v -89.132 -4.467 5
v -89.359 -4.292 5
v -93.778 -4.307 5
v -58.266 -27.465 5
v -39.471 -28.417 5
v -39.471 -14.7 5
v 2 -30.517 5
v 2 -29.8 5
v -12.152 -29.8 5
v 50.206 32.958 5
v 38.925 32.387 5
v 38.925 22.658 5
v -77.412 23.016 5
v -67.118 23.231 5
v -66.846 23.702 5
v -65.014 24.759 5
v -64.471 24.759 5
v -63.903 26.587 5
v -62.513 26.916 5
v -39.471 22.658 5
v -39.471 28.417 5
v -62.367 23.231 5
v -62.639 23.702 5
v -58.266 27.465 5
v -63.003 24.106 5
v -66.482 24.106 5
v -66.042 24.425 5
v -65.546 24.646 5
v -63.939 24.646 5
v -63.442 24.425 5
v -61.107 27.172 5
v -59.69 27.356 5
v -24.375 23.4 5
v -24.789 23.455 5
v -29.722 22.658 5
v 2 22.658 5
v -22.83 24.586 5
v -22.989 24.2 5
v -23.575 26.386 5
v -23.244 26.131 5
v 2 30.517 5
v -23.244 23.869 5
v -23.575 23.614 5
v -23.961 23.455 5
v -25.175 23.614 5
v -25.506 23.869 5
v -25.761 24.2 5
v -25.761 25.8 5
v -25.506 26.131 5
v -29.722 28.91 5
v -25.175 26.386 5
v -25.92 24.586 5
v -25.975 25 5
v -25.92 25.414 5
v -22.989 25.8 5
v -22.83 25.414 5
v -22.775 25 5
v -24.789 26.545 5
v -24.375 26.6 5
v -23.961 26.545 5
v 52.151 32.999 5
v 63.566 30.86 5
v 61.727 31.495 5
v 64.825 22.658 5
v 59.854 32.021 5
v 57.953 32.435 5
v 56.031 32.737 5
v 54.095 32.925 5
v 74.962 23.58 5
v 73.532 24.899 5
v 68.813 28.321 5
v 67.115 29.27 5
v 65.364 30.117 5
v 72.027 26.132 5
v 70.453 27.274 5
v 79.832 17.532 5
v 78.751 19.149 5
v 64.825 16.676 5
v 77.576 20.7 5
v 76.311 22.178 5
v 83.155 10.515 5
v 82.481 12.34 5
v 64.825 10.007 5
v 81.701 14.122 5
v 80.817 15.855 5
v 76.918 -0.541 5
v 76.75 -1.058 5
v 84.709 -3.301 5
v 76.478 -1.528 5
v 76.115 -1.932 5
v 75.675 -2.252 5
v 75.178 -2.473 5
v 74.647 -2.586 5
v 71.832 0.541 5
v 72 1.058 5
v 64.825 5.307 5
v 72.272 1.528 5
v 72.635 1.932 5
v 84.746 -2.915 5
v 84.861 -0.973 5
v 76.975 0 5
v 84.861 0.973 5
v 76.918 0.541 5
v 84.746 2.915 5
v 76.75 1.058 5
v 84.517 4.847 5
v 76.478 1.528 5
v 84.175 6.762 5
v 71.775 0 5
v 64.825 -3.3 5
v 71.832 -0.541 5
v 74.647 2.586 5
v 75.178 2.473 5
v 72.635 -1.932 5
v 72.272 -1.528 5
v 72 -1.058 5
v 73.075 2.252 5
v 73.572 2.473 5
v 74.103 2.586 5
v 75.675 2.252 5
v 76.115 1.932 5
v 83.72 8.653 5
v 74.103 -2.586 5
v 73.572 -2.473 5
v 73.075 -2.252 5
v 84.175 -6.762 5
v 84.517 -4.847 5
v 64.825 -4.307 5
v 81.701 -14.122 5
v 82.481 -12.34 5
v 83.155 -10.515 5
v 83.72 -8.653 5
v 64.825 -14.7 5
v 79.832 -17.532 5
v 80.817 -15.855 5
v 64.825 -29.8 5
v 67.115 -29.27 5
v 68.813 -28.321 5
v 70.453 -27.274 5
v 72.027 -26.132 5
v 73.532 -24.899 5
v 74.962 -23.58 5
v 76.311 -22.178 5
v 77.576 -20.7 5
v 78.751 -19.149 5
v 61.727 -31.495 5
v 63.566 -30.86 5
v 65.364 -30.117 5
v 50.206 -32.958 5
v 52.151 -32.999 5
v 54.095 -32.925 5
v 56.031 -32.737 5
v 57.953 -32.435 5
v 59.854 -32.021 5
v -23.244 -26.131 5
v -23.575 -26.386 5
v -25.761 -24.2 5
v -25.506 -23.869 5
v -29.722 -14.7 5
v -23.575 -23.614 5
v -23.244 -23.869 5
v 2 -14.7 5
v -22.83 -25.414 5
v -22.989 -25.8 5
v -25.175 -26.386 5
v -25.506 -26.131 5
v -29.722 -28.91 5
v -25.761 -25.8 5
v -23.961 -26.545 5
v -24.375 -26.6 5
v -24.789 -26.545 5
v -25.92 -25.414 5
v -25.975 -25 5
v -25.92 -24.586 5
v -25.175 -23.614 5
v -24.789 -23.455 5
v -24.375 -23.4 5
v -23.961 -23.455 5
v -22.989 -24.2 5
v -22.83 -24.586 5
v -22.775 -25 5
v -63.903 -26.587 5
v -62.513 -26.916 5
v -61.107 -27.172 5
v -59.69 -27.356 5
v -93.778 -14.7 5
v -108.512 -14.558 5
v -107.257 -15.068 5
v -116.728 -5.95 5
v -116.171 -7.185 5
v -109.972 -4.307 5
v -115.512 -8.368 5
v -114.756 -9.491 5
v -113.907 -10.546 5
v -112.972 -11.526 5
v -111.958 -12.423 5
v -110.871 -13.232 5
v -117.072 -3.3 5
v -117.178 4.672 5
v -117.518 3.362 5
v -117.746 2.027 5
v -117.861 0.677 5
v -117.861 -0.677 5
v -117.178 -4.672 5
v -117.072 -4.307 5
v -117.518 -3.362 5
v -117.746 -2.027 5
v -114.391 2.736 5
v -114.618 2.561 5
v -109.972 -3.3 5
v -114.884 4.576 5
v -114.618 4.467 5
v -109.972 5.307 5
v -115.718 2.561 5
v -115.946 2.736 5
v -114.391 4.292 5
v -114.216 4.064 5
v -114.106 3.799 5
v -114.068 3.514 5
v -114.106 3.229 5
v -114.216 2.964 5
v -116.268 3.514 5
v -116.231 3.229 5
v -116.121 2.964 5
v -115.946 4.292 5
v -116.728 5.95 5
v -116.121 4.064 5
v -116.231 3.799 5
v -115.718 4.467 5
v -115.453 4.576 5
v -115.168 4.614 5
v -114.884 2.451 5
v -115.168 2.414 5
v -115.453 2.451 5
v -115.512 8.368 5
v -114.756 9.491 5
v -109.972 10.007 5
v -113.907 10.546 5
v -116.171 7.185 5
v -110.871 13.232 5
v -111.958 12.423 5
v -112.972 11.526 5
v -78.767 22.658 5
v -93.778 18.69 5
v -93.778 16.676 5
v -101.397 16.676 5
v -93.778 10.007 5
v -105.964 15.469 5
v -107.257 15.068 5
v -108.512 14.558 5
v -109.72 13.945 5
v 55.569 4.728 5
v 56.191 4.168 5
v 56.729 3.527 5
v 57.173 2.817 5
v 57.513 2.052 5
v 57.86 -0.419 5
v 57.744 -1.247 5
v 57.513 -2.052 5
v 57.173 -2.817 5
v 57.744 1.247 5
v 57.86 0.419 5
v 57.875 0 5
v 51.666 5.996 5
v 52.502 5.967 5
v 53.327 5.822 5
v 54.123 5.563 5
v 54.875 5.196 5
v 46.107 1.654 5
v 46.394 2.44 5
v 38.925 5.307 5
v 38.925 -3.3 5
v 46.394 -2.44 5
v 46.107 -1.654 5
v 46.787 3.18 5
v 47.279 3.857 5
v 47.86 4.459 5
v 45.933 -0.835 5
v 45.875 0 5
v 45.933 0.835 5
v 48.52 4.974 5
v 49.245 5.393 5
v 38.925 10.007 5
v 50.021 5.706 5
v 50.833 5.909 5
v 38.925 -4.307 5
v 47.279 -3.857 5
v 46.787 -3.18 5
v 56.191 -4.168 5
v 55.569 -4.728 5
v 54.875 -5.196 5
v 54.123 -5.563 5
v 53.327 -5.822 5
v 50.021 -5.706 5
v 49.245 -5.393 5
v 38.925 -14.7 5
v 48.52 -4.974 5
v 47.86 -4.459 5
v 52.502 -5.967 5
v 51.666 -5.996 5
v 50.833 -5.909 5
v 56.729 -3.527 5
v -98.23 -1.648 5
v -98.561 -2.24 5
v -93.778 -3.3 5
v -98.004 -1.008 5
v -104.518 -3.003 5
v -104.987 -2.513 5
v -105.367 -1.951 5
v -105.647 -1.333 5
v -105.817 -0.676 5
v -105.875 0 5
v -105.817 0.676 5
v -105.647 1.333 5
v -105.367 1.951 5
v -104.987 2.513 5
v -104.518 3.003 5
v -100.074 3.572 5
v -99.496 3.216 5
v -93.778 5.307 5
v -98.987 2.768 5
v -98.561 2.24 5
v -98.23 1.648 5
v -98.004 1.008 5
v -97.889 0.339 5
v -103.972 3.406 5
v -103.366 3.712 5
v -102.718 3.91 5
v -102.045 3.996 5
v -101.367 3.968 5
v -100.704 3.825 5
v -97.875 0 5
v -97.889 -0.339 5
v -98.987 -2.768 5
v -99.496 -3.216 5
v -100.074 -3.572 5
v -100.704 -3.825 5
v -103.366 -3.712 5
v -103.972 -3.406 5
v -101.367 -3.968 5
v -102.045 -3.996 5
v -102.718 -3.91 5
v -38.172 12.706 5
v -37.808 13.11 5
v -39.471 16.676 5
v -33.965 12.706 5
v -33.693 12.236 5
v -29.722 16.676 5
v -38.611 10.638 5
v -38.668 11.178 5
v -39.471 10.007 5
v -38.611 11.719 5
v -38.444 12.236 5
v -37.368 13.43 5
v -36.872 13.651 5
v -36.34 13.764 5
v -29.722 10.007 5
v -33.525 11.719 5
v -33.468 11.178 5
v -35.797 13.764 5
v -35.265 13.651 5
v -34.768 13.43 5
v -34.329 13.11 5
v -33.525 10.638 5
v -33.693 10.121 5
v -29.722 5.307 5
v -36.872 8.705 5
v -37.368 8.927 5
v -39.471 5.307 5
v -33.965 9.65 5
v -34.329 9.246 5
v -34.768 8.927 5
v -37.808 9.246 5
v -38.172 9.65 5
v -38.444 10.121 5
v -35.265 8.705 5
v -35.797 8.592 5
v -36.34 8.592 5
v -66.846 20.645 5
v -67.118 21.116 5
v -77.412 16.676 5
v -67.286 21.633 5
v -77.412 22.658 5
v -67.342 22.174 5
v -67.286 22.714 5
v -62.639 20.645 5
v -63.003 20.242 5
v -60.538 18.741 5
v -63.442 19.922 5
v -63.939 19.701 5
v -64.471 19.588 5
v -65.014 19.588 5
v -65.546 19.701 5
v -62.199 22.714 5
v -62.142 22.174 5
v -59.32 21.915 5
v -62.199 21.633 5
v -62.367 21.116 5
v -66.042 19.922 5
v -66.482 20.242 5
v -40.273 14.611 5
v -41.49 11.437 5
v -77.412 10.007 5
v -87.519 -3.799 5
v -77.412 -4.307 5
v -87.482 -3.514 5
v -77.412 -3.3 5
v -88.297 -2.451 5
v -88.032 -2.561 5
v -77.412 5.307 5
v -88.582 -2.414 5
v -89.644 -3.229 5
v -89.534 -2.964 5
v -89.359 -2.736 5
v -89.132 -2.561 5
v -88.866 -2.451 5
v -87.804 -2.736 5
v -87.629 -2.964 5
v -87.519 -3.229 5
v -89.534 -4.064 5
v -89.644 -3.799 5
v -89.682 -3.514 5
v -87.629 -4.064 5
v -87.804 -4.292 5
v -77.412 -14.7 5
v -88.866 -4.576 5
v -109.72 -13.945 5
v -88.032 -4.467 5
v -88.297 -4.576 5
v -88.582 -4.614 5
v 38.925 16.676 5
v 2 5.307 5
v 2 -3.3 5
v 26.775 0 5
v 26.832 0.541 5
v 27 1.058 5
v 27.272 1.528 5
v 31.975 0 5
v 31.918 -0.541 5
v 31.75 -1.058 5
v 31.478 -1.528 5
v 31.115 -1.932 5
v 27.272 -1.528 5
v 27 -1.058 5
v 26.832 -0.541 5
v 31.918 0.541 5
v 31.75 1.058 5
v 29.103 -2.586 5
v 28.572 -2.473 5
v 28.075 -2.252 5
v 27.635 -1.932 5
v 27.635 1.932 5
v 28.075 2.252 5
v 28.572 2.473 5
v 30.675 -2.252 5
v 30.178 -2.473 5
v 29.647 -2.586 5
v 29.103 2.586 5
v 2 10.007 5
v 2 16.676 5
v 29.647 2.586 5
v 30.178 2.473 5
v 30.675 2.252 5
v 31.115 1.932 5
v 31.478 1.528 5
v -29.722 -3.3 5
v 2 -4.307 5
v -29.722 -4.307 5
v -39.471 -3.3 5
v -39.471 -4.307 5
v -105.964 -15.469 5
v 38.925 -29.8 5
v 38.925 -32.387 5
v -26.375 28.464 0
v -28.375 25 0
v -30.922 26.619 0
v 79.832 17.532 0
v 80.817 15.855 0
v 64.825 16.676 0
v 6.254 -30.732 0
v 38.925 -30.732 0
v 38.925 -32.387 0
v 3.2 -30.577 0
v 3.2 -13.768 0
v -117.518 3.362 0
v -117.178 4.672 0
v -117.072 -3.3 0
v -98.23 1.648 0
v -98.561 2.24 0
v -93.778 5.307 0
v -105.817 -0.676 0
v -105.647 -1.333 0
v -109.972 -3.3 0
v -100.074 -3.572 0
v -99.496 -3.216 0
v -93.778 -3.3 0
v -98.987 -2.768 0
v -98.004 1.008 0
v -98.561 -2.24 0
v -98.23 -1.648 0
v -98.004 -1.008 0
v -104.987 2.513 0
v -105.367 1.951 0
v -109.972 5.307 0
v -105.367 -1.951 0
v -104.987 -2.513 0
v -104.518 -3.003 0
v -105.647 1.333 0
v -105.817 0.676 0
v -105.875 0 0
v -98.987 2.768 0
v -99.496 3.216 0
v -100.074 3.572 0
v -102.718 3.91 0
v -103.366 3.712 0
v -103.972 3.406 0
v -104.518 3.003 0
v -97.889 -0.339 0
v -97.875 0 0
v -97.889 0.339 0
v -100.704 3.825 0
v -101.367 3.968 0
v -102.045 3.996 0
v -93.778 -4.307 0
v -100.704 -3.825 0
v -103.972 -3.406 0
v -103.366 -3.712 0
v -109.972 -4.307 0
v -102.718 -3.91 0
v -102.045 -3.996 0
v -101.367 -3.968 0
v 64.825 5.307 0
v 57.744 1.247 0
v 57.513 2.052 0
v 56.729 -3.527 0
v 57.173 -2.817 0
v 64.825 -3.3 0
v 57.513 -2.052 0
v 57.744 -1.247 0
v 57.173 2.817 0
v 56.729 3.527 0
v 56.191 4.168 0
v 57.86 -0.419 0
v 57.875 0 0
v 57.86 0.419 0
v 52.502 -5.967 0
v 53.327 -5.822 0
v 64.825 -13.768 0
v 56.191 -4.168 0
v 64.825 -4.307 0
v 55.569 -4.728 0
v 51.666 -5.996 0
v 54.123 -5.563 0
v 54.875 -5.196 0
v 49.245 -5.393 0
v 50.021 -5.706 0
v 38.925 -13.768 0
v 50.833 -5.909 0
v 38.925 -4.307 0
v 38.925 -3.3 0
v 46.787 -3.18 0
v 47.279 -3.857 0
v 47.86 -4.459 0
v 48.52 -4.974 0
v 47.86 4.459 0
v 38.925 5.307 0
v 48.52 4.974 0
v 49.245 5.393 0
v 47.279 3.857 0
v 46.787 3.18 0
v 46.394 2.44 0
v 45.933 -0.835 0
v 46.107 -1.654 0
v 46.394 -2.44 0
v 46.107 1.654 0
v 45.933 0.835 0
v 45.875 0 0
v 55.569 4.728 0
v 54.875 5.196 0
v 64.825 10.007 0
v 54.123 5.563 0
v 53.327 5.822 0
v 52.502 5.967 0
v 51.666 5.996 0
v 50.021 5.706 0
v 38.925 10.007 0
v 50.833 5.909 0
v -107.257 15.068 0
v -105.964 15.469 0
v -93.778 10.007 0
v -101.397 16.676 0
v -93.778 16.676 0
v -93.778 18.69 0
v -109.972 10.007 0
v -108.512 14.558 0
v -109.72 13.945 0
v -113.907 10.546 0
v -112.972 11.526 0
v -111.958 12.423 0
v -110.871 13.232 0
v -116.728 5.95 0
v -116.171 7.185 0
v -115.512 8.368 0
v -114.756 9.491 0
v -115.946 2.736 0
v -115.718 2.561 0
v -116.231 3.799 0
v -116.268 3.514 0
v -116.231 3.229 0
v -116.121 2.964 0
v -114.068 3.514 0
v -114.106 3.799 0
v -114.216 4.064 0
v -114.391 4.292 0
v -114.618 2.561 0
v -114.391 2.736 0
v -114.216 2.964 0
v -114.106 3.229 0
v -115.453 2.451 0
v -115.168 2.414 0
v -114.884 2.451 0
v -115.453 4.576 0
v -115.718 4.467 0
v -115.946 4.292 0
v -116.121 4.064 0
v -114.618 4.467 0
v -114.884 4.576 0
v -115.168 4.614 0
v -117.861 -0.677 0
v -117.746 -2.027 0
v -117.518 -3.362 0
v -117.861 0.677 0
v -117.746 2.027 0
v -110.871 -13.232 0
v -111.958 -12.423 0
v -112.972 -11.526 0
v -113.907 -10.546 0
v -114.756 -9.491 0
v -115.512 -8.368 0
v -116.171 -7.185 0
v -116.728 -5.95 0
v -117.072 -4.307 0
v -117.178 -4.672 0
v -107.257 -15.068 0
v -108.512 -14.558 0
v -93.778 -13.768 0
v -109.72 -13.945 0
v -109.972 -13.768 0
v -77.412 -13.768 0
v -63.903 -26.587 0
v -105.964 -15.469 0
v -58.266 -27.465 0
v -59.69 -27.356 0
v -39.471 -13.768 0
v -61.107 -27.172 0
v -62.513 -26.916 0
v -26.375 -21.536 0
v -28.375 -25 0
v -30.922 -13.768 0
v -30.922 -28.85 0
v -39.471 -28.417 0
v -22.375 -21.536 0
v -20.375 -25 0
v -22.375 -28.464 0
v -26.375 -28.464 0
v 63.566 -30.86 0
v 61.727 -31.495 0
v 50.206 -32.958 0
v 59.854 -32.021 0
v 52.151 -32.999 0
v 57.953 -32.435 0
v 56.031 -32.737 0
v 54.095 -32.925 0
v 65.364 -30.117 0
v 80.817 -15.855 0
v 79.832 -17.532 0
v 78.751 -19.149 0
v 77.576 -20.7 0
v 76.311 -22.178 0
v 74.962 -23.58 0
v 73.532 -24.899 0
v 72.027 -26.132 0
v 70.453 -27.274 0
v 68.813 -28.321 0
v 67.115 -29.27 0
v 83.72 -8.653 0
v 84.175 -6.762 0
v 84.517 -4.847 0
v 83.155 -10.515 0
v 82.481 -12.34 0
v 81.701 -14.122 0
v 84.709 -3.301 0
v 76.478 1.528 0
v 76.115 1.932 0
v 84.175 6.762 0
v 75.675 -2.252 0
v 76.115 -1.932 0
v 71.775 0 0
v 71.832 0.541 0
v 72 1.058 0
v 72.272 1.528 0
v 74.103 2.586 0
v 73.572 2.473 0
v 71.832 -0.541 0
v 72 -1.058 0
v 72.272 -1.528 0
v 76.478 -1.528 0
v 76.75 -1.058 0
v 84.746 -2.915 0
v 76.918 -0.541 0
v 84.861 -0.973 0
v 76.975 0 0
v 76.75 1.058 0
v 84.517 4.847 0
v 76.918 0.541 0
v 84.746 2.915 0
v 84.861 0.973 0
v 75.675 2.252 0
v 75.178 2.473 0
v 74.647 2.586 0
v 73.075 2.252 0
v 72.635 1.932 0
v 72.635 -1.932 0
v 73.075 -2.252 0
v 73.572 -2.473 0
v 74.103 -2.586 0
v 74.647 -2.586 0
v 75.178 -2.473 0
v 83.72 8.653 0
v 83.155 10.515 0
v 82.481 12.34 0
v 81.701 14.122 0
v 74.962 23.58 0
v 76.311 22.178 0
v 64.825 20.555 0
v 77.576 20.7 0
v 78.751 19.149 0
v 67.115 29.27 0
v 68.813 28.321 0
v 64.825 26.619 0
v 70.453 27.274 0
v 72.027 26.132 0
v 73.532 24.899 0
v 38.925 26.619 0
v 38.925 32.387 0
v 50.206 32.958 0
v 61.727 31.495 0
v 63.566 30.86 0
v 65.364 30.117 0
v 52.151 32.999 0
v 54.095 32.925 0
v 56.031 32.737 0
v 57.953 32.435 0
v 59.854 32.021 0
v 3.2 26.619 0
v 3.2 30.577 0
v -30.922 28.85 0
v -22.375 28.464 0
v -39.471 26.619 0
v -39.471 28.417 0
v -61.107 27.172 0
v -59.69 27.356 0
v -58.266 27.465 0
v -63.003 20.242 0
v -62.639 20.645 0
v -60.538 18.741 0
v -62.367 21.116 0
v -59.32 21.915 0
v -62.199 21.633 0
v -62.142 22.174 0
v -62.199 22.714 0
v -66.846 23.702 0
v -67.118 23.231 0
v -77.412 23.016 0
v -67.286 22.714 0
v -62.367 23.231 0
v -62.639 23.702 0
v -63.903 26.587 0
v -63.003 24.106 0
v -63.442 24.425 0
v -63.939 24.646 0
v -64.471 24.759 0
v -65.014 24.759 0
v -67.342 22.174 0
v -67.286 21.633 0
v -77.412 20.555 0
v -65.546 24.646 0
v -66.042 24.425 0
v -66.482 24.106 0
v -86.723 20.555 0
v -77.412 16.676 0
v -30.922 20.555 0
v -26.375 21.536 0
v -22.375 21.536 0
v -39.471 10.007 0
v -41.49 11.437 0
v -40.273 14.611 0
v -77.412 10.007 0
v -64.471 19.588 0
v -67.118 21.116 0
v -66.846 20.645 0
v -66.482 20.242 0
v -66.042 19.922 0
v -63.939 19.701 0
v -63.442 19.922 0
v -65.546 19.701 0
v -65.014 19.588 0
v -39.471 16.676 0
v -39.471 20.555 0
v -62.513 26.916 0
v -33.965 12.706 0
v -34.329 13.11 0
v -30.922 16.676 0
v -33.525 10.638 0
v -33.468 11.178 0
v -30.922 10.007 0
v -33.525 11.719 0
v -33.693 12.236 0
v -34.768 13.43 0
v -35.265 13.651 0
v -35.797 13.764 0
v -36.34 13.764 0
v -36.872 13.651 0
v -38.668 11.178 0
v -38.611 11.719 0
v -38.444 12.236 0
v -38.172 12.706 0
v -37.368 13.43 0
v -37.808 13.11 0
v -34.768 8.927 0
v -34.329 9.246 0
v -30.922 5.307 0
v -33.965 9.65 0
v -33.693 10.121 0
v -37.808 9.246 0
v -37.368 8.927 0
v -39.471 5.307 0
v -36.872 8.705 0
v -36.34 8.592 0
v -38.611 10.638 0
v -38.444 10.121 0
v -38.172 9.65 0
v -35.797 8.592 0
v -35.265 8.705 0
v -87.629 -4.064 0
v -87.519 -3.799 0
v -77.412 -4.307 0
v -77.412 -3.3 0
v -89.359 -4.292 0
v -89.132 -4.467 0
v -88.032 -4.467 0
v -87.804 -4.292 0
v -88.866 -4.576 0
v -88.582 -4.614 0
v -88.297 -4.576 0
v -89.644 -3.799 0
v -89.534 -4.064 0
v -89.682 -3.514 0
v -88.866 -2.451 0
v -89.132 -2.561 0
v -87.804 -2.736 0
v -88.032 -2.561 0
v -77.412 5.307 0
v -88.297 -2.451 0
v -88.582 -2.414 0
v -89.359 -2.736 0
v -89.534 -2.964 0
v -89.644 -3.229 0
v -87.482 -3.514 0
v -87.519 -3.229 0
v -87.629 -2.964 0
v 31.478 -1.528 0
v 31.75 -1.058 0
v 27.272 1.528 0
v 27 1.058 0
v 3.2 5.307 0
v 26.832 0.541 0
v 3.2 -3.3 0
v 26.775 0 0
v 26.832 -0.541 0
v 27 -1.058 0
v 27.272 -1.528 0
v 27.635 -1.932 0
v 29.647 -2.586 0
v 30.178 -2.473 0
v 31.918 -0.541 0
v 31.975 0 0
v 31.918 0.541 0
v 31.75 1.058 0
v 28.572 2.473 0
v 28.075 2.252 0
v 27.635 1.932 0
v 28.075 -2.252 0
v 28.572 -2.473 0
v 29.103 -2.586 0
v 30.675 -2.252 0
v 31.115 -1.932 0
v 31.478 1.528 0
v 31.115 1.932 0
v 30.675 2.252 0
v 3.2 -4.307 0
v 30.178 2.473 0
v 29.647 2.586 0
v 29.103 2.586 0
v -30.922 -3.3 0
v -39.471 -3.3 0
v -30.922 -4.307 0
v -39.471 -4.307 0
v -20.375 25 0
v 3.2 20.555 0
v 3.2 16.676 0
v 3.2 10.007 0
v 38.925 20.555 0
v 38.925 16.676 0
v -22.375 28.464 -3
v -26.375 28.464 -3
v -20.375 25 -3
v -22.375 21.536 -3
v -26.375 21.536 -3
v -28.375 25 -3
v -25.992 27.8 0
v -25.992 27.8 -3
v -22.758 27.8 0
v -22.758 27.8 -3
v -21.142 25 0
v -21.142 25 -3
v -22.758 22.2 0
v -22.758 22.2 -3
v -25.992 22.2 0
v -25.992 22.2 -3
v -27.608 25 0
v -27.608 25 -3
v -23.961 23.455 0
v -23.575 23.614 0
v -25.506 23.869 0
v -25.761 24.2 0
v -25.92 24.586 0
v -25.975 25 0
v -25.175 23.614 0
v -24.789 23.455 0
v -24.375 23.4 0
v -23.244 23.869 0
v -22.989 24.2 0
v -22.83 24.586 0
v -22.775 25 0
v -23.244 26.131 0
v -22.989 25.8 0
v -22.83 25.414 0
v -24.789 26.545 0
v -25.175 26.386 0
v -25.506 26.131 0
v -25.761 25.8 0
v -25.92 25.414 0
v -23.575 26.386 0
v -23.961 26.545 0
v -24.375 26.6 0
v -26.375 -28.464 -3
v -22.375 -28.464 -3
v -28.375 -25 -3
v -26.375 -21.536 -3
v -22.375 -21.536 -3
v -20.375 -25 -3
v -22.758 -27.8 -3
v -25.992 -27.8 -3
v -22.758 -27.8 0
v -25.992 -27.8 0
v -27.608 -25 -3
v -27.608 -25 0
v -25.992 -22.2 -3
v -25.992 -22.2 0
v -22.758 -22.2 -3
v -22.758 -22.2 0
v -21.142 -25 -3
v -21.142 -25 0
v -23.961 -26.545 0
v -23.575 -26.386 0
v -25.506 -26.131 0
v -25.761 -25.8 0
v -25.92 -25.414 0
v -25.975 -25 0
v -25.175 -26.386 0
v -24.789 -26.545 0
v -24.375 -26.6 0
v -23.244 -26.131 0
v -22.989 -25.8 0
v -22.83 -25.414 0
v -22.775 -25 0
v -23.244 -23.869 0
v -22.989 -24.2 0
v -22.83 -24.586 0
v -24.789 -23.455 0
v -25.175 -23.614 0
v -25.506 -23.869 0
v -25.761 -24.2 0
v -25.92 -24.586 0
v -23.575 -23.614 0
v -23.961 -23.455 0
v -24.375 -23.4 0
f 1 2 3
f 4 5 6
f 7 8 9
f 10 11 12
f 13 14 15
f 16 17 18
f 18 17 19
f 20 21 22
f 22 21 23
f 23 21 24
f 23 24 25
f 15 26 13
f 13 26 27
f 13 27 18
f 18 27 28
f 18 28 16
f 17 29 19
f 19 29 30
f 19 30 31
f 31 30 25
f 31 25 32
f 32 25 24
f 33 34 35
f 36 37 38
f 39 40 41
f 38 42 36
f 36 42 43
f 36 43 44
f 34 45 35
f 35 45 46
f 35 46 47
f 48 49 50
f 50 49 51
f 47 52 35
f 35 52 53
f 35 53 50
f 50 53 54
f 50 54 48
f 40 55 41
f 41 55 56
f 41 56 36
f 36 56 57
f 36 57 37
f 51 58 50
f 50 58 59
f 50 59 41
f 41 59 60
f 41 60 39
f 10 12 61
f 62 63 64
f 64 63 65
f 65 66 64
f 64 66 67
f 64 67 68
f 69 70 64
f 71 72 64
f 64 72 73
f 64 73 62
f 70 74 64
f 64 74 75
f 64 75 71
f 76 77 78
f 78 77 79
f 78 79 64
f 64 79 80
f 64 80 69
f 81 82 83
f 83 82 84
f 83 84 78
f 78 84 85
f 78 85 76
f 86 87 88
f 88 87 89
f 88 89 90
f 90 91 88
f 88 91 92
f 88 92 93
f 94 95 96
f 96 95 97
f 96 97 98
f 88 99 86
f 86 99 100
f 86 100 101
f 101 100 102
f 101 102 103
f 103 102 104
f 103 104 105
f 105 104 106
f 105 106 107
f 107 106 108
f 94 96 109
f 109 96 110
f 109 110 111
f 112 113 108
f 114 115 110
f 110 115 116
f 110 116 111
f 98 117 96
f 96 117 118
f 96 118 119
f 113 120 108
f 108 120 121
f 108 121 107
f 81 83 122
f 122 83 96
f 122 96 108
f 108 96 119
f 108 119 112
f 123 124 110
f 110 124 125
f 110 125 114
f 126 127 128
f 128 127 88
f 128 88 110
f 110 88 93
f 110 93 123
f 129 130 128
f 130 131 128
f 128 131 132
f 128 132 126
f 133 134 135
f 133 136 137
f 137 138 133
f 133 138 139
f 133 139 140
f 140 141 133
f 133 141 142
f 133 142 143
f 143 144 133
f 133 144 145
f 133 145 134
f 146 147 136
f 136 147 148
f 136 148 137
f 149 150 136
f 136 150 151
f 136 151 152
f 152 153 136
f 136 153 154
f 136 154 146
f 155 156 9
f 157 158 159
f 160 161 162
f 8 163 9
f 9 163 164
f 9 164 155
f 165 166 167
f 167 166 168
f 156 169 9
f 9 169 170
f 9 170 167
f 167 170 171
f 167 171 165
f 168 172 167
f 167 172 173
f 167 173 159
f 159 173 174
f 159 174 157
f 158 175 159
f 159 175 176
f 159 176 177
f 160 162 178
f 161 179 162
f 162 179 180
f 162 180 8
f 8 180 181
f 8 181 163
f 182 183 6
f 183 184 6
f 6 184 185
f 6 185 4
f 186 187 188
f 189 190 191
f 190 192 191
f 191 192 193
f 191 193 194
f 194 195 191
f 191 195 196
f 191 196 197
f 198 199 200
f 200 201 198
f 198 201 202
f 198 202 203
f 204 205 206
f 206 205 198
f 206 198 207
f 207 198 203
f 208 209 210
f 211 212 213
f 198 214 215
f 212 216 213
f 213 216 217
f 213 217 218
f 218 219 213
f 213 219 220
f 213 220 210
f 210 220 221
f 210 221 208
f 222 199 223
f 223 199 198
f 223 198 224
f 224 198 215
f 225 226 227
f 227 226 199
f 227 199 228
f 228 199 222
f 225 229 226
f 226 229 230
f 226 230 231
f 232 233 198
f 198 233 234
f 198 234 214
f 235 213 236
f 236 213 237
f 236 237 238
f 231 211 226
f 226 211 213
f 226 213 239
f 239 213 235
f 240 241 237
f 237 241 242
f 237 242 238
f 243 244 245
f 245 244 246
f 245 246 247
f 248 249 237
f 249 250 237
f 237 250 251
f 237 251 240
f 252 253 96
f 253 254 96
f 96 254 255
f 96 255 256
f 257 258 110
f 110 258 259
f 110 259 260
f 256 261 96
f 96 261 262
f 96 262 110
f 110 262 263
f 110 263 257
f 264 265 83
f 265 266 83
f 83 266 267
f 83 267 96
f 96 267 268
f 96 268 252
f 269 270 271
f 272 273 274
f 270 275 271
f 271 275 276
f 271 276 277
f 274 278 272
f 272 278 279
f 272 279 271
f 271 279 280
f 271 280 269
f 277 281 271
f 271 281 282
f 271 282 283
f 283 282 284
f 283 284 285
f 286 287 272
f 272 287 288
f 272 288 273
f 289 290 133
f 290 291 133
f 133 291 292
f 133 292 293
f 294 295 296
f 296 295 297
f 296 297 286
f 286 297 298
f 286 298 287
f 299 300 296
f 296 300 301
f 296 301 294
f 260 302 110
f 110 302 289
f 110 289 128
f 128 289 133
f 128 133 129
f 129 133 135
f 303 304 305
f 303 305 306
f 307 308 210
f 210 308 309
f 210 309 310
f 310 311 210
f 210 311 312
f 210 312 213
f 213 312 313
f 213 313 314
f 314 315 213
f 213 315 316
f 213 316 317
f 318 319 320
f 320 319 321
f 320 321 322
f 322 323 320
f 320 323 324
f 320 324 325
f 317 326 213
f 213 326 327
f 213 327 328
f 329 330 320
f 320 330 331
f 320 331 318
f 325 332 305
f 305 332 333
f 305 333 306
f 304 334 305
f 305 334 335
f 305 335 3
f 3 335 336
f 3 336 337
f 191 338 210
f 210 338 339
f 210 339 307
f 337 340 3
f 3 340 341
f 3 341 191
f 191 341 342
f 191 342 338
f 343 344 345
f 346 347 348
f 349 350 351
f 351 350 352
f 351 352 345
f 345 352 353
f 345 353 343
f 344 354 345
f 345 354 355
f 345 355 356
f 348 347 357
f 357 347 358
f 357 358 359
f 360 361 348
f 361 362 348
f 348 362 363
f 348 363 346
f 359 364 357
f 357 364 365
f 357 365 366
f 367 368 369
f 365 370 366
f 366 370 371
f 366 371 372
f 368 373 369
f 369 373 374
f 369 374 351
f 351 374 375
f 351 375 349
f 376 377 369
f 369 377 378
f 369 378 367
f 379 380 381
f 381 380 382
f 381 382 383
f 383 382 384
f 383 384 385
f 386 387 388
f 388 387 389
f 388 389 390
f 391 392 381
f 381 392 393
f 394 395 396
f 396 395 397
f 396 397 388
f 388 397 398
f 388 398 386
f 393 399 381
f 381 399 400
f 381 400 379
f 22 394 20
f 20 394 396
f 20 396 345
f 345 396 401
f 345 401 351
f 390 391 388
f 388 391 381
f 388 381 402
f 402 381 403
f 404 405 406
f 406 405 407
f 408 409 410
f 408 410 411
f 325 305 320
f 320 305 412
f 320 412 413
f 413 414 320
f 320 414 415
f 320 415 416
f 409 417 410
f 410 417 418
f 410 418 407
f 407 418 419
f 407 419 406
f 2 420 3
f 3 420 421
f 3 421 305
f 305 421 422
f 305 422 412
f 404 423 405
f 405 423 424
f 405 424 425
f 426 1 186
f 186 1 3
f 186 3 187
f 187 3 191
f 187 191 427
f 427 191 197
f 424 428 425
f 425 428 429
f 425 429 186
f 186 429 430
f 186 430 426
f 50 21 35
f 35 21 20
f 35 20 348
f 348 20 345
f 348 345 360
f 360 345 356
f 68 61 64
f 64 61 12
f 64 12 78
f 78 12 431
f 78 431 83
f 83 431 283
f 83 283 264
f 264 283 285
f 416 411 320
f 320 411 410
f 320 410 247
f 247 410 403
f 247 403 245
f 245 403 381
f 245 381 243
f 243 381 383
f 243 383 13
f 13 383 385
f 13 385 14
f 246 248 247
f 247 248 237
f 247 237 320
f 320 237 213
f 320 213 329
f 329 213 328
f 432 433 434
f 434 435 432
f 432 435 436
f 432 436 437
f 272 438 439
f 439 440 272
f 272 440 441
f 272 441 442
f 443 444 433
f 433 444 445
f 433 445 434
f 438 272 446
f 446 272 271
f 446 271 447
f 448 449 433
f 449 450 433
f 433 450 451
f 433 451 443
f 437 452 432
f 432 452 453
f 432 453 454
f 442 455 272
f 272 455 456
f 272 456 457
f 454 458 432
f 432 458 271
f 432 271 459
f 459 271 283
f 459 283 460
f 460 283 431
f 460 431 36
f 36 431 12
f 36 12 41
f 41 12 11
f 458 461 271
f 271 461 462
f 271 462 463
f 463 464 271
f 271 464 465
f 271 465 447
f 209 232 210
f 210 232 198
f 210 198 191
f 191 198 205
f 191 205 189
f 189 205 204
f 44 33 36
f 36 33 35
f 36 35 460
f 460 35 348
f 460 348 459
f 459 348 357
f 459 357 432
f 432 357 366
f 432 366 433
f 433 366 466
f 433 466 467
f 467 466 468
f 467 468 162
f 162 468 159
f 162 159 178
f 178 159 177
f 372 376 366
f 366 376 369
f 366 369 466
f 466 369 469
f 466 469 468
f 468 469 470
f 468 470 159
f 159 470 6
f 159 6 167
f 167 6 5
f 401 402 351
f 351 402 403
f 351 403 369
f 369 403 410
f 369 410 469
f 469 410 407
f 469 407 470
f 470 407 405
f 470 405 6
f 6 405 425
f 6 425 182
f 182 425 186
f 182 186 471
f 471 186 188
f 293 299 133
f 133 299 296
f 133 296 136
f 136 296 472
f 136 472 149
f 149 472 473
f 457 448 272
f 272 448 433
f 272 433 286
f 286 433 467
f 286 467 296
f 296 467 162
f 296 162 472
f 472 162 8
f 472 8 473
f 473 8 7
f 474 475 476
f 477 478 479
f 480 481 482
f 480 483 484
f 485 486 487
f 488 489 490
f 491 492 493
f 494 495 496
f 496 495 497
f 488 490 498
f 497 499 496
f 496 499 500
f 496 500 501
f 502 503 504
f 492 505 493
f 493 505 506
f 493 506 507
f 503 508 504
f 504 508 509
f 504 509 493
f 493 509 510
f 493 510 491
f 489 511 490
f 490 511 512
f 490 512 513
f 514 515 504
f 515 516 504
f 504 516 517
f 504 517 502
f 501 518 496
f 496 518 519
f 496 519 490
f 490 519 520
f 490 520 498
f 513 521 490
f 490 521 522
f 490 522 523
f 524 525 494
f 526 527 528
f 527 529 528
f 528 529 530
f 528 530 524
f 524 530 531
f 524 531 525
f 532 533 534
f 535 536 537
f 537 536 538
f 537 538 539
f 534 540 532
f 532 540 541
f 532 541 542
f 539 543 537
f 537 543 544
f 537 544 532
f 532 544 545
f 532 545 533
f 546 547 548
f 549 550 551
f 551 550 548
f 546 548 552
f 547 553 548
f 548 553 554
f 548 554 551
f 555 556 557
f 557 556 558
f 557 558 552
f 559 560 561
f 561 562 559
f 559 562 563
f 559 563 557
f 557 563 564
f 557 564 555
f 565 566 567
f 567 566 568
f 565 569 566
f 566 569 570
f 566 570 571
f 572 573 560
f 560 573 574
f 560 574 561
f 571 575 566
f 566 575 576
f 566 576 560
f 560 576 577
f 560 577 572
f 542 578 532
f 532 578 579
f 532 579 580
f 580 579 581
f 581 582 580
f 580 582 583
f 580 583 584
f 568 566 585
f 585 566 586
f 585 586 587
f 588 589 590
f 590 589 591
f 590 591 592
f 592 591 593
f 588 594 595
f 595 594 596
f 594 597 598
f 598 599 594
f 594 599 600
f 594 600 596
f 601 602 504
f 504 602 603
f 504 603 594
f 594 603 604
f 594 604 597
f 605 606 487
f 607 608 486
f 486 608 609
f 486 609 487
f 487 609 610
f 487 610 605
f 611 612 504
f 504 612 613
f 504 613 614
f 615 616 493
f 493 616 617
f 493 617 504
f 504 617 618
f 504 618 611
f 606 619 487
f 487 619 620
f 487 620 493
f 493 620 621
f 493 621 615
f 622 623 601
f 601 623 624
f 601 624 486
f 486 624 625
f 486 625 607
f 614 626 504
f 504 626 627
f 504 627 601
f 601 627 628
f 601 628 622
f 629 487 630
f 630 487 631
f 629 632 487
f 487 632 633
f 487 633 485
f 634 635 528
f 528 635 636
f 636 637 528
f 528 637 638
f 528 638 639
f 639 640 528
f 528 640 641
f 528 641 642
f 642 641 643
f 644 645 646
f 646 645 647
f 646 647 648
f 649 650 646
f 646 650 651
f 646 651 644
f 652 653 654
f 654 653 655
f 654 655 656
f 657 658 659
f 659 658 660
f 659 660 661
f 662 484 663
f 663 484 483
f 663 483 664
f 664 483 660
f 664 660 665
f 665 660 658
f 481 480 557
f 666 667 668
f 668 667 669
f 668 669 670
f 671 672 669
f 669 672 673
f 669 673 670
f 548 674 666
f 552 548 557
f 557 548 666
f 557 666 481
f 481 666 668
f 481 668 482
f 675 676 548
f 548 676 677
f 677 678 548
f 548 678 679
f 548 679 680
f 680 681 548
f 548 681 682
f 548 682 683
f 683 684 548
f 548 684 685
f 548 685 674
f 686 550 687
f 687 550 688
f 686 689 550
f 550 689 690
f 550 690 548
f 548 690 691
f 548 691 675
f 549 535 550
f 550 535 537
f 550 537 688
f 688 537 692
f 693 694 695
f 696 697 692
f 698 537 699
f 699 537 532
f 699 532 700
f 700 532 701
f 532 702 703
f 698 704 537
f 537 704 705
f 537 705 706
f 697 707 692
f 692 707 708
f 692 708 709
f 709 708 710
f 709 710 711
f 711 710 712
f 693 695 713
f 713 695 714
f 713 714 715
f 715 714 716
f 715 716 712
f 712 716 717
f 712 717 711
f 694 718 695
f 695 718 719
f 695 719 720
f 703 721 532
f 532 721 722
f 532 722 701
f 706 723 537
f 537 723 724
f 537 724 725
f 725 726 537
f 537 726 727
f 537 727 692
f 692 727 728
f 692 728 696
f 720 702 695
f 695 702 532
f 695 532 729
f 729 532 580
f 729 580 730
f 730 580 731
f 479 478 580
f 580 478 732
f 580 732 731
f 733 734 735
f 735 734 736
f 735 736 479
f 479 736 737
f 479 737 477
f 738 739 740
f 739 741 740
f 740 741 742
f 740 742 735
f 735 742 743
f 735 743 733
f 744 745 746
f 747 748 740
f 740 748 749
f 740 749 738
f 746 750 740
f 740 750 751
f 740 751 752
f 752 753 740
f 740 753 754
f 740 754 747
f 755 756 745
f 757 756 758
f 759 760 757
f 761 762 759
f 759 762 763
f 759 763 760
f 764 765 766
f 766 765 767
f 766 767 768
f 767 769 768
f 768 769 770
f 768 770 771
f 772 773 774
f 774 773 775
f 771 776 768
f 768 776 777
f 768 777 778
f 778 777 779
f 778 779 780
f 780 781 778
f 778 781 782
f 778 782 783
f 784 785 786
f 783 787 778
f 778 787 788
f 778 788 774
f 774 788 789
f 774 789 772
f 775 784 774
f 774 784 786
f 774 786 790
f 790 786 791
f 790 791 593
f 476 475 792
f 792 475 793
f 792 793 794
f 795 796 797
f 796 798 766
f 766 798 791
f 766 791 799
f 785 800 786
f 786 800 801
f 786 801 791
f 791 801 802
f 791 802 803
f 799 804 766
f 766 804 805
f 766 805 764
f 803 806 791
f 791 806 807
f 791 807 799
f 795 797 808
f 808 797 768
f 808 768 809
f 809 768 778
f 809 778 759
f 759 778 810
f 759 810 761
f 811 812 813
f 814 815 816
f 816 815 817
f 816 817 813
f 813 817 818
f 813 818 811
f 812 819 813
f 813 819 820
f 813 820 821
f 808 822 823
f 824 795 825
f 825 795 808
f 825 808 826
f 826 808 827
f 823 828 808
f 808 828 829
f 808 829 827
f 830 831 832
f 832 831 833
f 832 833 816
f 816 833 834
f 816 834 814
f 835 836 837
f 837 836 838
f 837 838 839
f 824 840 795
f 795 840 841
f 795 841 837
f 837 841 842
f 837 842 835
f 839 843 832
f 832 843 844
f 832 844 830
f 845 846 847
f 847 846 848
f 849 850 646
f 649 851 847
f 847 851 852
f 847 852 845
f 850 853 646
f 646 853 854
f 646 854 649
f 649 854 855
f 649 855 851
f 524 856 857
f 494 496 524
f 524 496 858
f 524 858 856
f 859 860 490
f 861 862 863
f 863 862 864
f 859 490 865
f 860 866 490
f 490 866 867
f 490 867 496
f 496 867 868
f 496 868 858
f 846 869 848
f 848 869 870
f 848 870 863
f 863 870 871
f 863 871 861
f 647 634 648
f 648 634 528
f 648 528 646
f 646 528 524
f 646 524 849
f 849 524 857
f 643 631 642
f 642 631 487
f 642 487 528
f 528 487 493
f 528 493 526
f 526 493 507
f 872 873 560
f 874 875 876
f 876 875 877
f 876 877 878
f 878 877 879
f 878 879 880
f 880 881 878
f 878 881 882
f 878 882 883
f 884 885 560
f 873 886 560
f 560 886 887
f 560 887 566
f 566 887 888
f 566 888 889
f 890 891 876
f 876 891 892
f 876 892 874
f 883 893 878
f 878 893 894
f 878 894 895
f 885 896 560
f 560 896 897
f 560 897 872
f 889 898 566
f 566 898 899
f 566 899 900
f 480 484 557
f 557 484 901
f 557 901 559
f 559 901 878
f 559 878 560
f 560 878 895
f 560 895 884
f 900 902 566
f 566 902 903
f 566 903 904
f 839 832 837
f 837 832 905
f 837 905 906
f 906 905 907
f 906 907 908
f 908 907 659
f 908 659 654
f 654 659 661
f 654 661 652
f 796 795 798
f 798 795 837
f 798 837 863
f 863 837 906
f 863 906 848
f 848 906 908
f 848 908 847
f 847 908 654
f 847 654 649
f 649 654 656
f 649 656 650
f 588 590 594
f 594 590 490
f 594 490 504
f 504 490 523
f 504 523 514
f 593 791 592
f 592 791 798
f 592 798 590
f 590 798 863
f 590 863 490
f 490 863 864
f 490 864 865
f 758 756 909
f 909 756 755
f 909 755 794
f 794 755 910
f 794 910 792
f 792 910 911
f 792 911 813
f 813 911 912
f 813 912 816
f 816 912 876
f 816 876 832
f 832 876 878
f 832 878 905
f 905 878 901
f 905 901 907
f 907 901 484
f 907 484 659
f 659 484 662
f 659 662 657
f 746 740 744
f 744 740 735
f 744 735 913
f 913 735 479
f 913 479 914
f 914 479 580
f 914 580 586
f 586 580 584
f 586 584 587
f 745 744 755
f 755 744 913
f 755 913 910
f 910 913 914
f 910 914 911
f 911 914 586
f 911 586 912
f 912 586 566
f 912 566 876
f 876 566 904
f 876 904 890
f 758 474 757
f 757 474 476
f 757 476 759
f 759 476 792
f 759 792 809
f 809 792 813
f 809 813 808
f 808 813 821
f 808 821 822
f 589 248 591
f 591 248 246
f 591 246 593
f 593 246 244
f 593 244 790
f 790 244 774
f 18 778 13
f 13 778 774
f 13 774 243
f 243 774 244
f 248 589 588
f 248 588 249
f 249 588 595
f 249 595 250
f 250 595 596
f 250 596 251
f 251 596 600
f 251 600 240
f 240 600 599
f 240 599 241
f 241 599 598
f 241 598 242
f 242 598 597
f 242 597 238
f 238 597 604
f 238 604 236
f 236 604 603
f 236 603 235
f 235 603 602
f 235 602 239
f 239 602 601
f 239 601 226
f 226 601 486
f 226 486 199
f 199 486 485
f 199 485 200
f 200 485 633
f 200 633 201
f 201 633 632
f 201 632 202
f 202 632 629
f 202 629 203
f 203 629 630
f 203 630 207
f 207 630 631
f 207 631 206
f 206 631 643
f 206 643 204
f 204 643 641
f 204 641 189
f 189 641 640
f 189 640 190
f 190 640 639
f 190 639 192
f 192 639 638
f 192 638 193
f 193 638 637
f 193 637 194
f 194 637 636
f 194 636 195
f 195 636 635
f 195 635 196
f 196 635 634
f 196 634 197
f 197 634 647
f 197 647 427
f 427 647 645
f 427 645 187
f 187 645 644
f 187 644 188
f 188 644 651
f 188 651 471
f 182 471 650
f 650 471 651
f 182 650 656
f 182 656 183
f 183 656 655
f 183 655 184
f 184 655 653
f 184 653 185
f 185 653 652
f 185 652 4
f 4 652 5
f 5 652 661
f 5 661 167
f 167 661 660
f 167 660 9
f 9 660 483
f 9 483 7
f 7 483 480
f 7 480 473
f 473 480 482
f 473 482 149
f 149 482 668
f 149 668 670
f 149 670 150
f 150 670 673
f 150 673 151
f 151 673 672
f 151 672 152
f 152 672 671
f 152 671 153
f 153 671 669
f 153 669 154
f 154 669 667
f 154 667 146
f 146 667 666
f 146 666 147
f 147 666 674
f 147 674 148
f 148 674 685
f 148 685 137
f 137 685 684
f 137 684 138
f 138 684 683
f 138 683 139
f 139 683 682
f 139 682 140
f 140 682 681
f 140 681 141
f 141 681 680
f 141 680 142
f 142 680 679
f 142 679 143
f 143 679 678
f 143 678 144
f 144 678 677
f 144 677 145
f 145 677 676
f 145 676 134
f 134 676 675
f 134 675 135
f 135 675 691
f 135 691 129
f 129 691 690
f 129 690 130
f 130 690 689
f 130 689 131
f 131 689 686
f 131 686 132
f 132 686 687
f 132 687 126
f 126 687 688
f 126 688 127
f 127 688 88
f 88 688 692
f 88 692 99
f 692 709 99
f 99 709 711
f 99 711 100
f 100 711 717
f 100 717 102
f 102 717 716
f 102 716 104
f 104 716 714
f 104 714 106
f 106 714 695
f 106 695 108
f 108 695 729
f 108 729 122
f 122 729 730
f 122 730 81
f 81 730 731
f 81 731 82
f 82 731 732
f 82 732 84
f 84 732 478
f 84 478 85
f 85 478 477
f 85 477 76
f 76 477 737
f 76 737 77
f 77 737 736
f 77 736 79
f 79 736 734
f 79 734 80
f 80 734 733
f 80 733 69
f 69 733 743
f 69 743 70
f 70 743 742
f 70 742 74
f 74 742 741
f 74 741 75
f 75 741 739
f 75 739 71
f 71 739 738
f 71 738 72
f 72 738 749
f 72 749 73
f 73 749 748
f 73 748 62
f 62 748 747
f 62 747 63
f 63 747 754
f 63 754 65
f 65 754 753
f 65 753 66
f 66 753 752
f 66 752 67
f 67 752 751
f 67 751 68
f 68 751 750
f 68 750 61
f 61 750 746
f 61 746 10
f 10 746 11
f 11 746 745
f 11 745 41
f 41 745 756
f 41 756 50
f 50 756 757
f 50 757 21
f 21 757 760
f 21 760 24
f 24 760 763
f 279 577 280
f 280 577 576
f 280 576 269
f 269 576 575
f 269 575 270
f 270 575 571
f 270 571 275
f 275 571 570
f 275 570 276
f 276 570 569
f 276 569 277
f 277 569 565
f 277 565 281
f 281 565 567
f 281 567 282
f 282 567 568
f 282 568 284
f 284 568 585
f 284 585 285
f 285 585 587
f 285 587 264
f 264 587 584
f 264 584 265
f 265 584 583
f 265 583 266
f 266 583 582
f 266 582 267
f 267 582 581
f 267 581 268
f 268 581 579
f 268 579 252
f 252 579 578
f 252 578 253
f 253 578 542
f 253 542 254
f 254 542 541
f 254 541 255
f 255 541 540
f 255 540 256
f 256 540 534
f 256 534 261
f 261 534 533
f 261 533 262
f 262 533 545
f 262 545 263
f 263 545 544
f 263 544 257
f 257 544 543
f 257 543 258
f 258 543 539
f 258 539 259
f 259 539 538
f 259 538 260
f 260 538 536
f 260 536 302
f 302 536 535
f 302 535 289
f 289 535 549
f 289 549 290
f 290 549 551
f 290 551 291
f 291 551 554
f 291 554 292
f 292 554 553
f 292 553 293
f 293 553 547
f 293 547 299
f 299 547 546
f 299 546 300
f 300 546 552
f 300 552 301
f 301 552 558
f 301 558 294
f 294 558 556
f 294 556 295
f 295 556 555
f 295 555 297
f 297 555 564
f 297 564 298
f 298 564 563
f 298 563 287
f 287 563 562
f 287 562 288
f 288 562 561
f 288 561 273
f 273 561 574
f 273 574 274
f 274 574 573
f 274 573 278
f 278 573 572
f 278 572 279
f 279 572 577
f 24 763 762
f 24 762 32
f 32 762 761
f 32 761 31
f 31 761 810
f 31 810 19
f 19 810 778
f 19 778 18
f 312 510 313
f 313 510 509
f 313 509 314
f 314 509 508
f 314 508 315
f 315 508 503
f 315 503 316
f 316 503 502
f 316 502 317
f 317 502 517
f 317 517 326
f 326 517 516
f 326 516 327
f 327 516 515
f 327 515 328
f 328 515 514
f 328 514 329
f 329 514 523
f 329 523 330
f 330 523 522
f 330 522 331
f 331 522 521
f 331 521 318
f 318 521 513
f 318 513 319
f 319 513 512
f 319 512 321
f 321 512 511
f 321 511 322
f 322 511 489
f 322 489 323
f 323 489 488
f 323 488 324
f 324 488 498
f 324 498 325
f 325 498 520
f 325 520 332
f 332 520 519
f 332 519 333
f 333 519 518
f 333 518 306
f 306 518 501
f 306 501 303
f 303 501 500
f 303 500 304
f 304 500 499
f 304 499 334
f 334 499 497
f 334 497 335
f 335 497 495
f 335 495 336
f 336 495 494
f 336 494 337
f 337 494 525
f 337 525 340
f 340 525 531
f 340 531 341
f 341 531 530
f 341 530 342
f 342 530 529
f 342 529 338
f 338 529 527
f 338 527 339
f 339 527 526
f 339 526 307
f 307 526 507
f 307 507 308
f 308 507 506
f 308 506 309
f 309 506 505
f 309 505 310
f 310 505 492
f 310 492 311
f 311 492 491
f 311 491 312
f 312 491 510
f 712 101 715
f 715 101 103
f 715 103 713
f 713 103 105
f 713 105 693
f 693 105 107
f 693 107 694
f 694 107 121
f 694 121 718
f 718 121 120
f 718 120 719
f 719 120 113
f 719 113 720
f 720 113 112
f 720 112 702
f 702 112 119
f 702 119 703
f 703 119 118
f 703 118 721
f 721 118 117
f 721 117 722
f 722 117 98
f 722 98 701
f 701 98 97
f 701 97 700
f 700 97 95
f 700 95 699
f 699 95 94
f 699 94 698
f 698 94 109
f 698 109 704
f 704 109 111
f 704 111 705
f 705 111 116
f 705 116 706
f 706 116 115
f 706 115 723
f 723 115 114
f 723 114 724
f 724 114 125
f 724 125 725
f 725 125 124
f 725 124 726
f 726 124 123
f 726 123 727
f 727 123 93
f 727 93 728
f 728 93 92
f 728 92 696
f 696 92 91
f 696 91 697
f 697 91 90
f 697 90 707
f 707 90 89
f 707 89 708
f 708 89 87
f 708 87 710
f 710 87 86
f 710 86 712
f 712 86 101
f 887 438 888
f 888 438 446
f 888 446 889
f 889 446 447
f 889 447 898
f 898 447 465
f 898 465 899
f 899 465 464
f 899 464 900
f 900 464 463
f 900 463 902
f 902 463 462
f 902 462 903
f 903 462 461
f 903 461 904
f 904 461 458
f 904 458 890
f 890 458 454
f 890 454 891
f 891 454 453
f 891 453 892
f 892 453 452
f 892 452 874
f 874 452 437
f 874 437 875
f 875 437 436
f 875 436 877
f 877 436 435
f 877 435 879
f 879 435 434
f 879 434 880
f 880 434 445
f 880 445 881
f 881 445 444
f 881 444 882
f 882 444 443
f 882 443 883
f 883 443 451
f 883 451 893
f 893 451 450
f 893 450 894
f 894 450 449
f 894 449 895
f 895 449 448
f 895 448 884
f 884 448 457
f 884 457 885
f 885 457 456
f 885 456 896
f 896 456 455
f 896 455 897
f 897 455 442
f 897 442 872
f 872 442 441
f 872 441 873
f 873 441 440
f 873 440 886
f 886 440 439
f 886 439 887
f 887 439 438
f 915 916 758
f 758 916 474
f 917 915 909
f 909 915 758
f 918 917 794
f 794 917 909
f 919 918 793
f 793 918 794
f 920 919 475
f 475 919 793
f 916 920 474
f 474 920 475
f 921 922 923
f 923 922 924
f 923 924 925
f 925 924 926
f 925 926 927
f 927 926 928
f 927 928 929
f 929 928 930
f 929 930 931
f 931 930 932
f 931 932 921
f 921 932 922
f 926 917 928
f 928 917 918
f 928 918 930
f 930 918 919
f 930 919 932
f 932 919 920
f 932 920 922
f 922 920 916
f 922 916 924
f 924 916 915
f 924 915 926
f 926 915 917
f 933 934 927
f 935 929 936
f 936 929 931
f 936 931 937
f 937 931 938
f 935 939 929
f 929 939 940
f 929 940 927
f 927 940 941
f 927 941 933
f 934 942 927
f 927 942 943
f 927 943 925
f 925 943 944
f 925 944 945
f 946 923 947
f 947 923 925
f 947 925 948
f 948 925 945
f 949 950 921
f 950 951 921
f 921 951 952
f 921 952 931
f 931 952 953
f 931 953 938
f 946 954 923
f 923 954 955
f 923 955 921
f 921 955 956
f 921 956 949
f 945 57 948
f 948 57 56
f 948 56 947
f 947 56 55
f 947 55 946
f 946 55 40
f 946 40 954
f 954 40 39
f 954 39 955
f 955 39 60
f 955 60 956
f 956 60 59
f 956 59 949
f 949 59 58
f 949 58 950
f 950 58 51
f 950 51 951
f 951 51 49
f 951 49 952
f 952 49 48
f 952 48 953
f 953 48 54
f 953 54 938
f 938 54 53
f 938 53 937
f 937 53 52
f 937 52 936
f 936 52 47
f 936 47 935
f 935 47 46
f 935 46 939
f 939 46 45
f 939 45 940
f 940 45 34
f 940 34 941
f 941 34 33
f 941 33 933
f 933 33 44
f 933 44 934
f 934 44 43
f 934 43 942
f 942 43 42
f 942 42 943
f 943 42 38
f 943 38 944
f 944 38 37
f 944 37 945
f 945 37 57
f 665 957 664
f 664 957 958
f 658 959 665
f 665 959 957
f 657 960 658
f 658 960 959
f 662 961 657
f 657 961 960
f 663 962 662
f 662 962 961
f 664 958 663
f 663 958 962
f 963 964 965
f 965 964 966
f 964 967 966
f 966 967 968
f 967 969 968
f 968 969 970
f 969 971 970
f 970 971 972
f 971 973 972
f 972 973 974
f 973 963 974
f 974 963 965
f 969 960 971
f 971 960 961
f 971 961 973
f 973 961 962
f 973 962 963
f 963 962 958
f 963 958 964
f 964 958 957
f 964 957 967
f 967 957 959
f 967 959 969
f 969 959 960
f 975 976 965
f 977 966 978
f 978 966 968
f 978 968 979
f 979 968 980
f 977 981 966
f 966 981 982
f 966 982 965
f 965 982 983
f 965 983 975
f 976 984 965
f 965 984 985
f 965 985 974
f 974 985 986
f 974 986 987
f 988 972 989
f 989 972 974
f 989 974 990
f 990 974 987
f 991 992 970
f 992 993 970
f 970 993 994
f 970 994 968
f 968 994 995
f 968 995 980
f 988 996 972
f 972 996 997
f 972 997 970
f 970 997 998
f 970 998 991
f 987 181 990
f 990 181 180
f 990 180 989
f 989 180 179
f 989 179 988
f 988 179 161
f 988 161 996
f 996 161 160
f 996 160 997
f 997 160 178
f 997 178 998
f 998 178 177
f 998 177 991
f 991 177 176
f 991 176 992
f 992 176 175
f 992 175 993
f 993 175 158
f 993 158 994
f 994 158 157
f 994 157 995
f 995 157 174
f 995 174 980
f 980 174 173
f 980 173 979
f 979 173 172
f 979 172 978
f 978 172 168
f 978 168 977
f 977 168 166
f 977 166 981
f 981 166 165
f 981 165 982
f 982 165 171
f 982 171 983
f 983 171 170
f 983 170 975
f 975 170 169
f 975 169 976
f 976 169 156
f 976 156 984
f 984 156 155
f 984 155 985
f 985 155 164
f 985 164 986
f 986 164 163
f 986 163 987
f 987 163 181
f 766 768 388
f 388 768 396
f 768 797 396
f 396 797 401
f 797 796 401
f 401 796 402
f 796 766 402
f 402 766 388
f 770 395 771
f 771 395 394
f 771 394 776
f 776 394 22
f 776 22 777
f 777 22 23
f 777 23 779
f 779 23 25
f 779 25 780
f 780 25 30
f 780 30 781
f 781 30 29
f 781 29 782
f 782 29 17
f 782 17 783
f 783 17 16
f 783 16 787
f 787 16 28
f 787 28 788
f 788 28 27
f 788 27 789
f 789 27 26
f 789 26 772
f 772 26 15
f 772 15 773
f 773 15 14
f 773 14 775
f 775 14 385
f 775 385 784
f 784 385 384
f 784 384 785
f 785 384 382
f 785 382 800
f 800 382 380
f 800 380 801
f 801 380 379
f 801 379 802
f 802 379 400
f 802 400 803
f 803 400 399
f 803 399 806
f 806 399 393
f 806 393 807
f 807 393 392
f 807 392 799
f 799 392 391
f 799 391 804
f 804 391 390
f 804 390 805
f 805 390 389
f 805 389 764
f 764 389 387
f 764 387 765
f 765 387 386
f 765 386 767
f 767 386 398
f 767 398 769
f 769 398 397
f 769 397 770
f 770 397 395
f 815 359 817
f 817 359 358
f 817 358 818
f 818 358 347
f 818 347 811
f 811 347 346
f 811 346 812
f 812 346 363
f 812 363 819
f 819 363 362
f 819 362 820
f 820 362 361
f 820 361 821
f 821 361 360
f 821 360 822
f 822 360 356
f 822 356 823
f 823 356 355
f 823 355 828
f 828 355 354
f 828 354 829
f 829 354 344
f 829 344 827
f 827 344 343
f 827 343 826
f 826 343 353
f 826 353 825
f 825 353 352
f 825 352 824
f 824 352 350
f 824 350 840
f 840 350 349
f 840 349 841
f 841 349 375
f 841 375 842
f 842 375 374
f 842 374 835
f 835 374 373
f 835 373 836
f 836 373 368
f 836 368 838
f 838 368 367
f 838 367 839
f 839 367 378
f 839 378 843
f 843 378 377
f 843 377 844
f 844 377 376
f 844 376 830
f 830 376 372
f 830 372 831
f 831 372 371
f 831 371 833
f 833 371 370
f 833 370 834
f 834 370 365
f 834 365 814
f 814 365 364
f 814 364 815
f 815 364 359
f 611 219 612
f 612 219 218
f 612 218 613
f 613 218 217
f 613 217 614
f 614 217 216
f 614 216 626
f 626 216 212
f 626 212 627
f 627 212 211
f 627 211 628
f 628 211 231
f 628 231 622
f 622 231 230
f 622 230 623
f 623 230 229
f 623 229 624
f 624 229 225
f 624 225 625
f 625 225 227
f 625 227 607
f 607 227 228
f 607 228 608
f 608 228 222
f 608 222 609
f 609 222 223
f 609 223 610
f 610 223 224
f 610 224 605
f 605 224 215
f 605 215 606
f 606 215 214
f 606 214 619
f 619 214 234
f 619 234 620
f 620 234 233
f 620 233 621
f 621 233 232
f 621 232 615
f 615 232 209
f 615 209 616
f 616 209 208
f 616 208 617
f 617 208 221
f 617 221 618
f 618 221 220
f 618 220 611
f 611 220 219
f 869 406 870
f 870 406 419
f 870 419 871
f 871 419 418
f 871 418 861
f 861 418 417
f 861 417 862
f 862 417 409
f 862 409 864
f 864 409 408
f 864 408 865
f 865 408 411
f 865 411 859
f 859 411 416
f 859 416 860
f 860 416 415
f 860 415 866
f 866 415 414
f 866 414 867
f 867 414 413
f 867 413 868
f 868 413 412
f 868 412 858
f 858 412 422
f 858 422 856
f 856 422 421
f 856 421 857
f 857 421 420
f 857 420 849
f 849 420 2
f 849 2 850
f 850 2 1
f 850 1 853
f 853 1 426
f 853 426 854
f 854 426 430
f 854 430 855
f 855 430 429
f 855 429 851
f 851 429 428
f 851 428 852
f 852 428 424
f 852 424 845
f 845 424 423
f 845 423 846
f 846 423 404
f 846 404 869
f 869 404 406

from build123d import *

# Parameters (mm, degrees)
SKETCH1_R           = 16
SKETCH1_R_2         = 4
SKETCH1_R_3         = 6
BOSS_EXTRUDE1_DEPTH = 5
SKETCH7_R           = 2.6
CUT_EXTRUDE1_DEPTH  = 7
BOSS_EXTRUDE6_DEPTH = 8
SKETCH9_R           = 1.6
CUT_EXTRUDE2_DEPTH  = 6
SKETCH10_R          = 2.6
BOSS_EXTRUDE7_DEPTH = 5
CUT_EXTRUDE4_START  = -10
SKETCH12_R          = 2.6
CUT_EXTRUDE4_DEPTH  = 10
SKETCH11_R          = 1.1
CUT_EXTRUDE3_DEPTH  = 6


with BuildPart() as part:
    # Sketch1 → Boss-Extrude1 (new body)
    # profile 1 of 3: a face of its own
    with BuildSketch(Plane.XY):
        with BuildLine():
            ThreePointArc((-63.902777778, -26.586845234), (-84.375, 0), (-63.902777778, 26.586845234))
            Line((-63.902777778, 26.586845234), (-105.963888889, 15.468709954))
            ThreePointArc((-105.963888889, 15.468709954), (-92.113397217, 12.677188612), (-85.875, 0))
            ThreePointArc((-85.875, 0), (-92.113397217, -12.677188612), (-105.963888889, -15.468709954))
            Line((-105.963888889, -15.468709954), (-63.902777778, -26.586845234))
        make_face()
    # profile 2 of 3: a face of its own
    with BuildSketch(Plane.XY):
        with Locations((-101.875, 0)):
            Circle(SKETCH1_R)
        with Locations((-101.875, 0)):
            Circle(SKETCH1_R_2, mode=Mode.SUBTRACT)
    # profile 3 of 3: a face of its own
    with BuildSketch(Plane.XY):
        with BuildLine():
            Line((-58.265804598, 27.46480771), (50.206034483, 32.957769253))
            ThreePointArc((50.206034483, 32.957769253), (84.875, 0), (50.206034483, -32.957769253))
            Line((50.206034483, -32.957769253), (-58.265804598, -27.46480771))
            ThreePointArc((-58.265804598, -27.46480771), (-84.375, 0), (-58.265804598, 27.46480771))
        make_face()
        with Locations((51.875, 0)):
            Circle(SKETCH1_R_3, mode=Mode.SUBTRACT)
    extrude(amount=BOSS_EXTRUDE1_DEPTH)

    # Sketch7 → Cut-Extrude1 (cut)
    with BuildSketch(Plane.XY.offset(5)):
        with Locations((29.375, 0)):
            Circle(SKETCH7_R)
        with Locations((74.375, 0)):
            Circle(SKETCH7_R)
    extrude(amount=-CUT_EXTRUDE1_DEPTH, mode=Mode.SUBTRACT)

    # Sketch8 → Boss-Extrude6 (add)
    with BuildSketch(Plane.XY.offset(5)):
        Polygon((-26.375, 28.464101615), (-28.375, 25), (-26.375, 21.535898385), (-22.375, 21.535898385), (-20.375, 25), (-22.375, 28.464101615), align=None)
        Polygon((-25.991580754, 27.8), (-27.608161507, 25), (-25.991580754, 22.2), (-22.758419246, 22.2), (-21.141838493, 25), (-22.758419246, 27.8), align=None, mode=Mode.SUBTRACT)
    boss_extrude6 = extrude(amount=-BOSS_EXTRUDE6_DEPTH)

    # Sketch9 → Cut-Extrude2 (cut)
    with BuildSketch(Plane.XY.offset(5)):
        with Locations((-24.375, 25)):
            Circle(SKETCH9_R)
    cut_extrude2 = extrude(amount=-CUT_EXTRUDE2_DEPTH, mode=Mode.SUBTRACT)

    # Mirror1: Boss-Extrude6 across plane
    add(boss_extrude6.mirror(Plane.ZX))

    # Mirror2: Cut-Extrude2 across plane
    add(cut_extrude2.mirror(Plane.ZX), mode=Mode.SUBTRACT)

    # Sketch10 → Boss-Extrude7 (add)
    with BuildSketch(Plane.XY.offset(5)):
        with Locations((-36.06831441, 11.178241177)):
            Circle(SKETCH10_R)
        with Locations(Location((-64.742423683, 22.173717984, 0), (0, 0, 180))):
            Circle(SKETCH10_R)
        Polygon((-41.60537748, 11.695000918), (-60.279486753, 18.855841852), (-59.205360613, 21.656958243), (-40.53125134, 14.496117309), align=None)
    extrude(amount=BOSS_EXTRUDE7_DEPTH)

    # Sketch12 → Cut-Extrude4 (cut)
    with BuildSketch(Plane.XY.offset(10).offset(CUT_EXTRUDE4_START)):
        with Locations((-36.06831441, 11.178241177)):
            Circle(SKETCH12_R)
        with Locations((-64.742423683, 22.173717984)):
            Circle(SKETCH12_R)
        Polygon((-59.320493296, 21.915307745), (-40.272901838, 14.611249993), (-41.490244797, 11.436651416), (-60.537836255, 18.740709168), align=None)
    extrude(amount=CUT_EXTRUDE4_DEPTH, mode=Mode.SUBTRACT)

    # Sketch11 → Cut-Extrude3 (cut)
    with BuildSketch(Plane.XY.offset(5)):
        with Locations((-88.581577383, -3.513888889)):
            Circle(SKETCH11_R)
        with Locations((-115.168422617, 3.513888889)):
            Circle(SKETCH11_R)
    extrude(amount=-CUT_EXTRUDE3_DEPTH, mode=Mode.SUBTRACT)


solid = part.part
